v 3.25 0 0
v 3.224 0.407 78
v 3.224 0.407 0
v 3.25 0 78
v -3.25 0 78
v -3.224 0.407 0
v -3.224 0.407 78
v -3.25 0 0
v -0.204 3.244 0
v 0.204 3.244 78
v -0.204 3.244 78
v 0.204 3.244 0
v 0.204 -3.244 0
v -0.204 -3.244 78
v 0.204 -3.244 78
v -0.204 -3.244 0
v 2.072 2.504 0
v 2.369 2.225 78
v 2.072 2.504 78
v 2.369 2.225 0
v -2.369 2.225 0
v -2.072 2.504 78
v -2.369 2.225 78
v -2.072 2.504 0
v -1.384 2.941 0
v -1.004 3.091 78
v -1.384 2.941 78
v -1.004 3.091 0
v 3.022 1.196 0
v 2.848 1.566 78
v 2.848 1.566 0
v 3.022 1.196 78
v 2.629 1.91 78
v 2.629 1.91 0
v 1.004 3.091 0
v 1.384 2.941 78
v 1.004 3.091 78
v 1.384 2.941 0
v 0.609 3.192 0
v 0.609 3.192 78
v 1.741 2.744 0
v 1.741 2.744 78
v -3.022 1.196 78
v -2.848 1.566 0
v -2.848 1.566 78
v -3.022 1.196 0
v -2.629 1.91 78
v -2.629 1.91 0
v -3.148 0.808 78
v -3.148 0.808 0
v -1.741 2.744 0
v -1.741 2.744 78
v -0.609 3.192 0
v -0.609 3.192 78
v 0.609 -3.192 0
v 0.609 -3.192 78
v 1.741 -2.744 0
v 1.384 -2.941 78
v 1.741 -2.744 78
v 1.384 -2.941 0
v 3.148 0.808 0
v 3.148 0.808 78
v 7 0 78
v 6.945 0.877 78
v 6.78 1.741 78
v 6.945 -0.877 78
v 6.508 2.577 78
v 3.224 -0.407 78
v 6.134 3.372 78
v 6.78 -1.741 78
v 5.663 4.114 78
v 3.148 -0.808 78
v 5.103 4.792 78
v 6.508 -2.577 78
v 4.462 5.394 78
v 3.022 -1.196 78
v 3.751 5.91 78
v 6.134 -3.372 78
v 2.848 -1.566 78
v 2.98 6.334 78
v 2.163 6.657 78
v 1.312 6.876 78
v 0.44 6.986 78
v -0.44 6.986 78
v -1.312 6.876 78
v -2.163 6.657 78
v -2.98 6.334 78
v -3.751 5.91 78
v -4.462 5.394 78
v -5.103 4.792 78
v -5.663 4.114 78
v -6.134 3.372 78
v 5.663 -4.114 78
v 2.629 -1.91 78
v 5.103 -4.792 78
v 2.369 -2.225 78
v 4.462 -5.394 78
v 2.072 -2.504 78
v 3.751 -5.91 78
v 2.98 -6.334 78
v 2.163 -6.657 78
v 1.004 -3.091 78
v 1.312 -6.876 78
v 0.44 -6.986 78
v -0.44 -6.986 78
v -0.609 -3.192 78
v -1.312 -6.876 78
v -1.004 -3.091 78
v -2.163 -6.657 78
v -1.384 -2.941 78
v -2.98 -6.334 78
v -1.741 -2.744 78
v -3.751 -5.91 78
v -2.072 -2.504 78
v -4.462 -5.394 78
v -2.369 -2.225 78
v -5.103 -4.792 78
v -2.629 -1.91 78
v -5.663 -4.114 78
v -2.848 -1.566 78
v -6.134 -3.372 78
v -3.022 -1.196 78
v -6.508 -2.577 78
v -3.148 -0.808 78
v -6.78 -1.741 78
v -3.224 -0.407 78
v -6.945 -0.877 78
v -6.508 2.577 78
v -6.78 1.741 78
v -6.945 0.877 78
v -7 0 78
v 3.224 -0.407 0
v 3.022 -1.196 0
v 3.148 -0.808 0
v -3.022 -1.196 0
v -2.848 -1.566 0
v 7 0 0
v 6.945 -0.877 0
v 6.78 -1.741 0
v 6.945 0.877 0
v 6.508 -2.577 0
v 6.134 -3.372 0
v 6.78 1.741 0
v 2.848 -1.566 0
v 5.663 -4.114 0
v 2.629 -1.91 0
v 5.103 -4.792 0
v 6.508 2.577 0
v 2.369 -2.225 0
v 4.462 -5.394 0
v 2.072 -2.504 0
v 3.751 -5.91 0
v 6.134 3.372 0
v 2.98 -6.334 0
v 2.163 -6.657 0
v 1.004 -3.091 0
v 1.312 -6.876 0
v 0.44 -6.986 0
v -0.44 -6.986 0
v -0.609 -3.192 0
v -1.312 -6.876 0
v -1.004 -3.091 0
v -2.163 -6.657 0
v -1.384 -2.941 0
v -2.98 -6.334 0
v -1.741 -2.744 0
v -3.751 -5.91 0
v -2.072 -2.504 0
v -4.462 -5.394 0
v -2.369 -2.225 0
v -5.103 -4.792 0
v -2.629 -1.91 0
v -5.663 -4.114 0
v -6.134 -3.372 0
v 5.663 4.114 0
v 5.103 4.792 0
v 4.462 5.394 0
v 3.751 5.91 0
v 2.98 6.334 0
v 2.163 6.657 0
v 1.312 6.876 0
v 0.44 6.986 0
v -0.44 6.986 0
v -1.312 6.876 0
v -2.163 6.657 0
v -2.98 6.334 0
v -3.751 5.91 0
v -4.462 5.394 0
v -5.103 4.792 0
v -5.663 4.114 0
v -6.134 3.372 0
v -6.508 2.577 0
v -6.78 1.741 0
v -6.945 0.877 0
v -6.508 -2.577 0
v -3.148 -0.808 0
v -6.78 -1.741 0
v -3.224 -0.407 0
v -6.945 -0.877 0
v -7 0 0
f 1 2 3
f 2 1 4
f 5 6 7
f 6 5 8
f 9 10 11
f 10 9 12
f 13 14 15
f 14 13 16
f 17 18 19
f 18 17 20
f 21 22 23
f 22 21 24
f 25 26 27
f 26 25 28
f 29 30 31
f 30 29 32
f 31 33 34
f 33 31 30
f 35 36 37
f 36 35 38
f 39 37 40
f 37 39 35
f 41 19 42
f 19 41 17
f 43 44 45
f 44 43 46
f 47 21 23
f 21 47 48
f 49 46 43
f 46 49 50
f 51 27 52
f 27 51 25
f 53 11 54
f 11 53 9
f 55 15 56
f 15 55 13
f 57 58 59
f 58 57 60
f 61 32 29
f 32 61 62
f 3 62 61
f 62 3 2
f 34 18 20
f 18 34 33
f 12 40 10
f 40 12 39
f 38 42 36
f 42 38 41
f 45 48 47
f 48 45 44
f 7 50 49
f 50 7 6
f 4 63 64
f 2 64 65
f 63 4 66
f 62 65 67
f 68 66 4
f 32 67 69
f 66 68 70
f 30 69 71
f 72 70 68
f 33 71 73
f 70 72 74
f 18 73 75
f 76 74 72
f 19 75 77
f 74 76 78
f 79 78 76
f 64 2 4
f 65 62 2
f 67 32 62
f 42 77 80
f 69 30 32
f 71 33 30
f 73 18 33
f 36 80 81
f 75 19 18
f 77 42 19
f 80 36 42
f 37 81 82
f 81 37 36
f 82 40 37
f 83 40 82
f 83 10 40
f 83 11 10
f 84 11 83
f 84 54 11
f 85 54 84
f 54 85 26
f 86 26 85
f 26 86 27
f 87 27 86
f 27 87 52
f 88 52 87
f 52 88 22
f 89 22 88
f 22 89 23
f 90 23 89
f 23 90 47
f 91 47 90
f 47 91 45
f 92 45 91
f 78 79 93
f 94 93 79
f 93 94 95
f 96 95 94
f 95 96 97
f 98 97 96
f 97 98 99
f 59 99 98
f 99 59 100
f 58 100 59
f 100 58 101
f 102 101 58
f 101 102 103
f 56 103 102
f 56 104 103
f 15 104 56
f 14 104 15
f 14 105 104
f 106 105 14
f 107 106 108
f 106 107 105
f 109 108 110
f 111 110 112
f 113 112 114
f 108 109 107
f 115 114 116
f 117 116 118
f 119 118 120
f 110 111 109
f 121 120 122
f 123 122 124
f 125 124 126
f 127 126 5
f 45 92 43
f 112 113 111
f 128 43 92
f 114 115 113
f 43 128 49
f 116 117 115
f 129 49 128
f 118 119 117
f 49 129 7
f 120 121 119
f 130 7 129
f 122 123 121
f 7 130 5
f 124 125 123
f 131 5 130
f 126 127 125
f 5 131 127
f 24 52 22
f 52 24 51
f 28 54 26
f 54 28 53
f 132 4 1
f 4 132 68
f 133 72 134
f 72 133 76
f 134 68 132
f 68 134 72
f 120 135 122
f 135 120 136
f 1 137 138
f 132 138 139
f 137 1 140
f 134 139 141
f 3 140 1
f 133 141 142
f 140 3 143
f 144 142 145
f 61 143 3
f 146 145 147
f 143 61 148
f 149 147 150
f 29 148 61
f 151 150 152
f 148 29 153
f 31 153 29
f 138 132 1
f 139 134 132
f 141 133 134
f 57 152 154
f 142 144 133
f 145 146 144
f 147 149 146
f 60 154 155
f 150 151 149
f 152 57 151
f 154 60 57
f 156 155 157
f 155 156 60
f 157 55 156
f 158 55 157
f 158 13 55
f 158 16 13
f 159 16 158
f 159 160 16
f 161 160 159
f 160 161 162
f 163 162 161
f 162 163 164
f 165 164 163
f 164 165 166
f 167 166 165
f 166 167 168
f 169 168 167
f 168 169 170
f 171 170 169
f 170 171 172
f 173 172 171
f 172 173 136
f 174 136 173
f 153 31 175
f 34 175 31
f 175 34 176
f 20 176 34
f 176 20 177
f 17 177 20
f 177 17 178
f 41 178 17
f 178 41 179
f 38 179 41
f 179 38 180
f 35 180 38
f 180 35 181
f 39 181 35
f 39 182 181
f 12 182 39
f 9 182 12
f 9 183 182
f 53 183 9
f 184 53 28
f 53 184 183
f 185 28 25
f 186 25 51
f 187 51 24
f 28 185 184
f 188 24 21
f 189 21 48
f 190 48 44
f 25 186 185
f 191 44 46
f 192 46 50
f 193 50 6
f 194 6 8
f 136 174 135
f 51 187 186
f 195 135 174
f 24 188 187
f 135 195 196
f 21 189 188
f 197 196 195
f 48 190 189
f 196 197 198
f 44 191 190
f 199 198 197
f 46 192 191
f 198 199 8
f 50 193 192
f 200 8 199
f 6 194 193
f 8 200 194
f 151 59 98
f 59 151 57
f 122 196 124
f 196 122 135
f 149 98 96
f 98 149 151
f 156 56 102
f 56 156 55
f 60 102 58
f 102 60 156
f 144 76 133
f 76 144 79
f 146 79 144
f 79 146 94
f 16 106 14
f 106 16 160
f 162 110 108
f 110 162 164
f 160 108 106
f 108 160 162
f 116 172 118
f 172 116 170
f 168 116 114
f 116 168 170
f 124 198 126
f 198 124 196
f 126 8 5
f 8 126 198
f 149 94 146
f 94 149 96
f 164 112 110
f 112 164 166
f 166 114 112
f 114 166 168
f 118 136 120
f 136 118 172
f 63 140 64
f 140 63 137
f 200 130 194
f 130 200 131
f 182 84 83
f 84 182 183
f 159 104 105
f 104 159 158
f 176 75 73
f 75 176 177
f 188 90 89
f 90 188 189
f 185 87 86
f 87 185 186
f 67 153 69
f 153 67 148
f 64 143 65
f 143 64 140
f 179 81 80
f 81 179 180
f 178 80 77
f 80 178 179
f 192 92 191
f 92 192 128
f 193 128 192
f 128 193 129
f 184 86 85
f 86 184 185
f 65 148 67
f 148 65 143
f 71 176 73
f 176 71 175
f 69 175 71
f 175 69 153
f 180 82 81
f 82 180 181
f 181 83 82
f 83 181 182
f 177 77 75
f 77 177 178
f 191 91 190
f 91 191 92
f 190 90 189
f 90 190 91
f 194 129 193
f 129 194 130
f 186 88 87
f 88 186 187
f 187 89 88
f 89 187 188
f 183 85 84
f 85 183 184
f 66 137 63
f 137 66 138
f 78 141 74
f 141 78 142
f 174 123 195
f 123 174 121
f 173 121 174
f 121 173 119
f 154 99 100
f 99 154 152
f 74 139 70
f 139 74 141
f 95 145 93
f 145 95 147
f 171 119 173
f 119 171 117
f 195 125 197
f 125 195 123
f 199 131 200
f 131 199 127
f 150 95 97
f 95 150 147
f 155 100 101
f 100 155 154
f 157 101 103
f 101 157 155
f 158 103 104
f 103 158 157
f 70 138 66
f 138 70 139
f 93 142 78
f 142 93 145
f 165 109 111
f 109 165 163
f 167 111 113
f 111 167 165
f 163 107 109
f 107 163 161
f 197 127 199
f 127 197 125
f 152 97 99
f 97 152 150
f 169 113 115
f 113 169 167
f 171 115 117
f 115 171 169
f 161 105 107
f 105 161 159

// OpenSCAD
$fn = 50;


difference() {
	union() {
		cylinder(h = 78, r = 7.0000000000);
	}
	union() {
		cylinder(h = 78, r = 3.2500000000);
		cylinder(h = 78, r = 3.2500000000);
		cylinder(h = 78, r = 1.8000000000);
		cylinder(h = 78, r = 1.8000000000);
		cylinder(h = 78, r = 1.8000000000);
		cylinder(h = 78, r = 1.8000000000);
		cylinder(h = 78, r = 1.8000000000);
		cylinder(h = 78, r = 1.8000000000);
	}
}
